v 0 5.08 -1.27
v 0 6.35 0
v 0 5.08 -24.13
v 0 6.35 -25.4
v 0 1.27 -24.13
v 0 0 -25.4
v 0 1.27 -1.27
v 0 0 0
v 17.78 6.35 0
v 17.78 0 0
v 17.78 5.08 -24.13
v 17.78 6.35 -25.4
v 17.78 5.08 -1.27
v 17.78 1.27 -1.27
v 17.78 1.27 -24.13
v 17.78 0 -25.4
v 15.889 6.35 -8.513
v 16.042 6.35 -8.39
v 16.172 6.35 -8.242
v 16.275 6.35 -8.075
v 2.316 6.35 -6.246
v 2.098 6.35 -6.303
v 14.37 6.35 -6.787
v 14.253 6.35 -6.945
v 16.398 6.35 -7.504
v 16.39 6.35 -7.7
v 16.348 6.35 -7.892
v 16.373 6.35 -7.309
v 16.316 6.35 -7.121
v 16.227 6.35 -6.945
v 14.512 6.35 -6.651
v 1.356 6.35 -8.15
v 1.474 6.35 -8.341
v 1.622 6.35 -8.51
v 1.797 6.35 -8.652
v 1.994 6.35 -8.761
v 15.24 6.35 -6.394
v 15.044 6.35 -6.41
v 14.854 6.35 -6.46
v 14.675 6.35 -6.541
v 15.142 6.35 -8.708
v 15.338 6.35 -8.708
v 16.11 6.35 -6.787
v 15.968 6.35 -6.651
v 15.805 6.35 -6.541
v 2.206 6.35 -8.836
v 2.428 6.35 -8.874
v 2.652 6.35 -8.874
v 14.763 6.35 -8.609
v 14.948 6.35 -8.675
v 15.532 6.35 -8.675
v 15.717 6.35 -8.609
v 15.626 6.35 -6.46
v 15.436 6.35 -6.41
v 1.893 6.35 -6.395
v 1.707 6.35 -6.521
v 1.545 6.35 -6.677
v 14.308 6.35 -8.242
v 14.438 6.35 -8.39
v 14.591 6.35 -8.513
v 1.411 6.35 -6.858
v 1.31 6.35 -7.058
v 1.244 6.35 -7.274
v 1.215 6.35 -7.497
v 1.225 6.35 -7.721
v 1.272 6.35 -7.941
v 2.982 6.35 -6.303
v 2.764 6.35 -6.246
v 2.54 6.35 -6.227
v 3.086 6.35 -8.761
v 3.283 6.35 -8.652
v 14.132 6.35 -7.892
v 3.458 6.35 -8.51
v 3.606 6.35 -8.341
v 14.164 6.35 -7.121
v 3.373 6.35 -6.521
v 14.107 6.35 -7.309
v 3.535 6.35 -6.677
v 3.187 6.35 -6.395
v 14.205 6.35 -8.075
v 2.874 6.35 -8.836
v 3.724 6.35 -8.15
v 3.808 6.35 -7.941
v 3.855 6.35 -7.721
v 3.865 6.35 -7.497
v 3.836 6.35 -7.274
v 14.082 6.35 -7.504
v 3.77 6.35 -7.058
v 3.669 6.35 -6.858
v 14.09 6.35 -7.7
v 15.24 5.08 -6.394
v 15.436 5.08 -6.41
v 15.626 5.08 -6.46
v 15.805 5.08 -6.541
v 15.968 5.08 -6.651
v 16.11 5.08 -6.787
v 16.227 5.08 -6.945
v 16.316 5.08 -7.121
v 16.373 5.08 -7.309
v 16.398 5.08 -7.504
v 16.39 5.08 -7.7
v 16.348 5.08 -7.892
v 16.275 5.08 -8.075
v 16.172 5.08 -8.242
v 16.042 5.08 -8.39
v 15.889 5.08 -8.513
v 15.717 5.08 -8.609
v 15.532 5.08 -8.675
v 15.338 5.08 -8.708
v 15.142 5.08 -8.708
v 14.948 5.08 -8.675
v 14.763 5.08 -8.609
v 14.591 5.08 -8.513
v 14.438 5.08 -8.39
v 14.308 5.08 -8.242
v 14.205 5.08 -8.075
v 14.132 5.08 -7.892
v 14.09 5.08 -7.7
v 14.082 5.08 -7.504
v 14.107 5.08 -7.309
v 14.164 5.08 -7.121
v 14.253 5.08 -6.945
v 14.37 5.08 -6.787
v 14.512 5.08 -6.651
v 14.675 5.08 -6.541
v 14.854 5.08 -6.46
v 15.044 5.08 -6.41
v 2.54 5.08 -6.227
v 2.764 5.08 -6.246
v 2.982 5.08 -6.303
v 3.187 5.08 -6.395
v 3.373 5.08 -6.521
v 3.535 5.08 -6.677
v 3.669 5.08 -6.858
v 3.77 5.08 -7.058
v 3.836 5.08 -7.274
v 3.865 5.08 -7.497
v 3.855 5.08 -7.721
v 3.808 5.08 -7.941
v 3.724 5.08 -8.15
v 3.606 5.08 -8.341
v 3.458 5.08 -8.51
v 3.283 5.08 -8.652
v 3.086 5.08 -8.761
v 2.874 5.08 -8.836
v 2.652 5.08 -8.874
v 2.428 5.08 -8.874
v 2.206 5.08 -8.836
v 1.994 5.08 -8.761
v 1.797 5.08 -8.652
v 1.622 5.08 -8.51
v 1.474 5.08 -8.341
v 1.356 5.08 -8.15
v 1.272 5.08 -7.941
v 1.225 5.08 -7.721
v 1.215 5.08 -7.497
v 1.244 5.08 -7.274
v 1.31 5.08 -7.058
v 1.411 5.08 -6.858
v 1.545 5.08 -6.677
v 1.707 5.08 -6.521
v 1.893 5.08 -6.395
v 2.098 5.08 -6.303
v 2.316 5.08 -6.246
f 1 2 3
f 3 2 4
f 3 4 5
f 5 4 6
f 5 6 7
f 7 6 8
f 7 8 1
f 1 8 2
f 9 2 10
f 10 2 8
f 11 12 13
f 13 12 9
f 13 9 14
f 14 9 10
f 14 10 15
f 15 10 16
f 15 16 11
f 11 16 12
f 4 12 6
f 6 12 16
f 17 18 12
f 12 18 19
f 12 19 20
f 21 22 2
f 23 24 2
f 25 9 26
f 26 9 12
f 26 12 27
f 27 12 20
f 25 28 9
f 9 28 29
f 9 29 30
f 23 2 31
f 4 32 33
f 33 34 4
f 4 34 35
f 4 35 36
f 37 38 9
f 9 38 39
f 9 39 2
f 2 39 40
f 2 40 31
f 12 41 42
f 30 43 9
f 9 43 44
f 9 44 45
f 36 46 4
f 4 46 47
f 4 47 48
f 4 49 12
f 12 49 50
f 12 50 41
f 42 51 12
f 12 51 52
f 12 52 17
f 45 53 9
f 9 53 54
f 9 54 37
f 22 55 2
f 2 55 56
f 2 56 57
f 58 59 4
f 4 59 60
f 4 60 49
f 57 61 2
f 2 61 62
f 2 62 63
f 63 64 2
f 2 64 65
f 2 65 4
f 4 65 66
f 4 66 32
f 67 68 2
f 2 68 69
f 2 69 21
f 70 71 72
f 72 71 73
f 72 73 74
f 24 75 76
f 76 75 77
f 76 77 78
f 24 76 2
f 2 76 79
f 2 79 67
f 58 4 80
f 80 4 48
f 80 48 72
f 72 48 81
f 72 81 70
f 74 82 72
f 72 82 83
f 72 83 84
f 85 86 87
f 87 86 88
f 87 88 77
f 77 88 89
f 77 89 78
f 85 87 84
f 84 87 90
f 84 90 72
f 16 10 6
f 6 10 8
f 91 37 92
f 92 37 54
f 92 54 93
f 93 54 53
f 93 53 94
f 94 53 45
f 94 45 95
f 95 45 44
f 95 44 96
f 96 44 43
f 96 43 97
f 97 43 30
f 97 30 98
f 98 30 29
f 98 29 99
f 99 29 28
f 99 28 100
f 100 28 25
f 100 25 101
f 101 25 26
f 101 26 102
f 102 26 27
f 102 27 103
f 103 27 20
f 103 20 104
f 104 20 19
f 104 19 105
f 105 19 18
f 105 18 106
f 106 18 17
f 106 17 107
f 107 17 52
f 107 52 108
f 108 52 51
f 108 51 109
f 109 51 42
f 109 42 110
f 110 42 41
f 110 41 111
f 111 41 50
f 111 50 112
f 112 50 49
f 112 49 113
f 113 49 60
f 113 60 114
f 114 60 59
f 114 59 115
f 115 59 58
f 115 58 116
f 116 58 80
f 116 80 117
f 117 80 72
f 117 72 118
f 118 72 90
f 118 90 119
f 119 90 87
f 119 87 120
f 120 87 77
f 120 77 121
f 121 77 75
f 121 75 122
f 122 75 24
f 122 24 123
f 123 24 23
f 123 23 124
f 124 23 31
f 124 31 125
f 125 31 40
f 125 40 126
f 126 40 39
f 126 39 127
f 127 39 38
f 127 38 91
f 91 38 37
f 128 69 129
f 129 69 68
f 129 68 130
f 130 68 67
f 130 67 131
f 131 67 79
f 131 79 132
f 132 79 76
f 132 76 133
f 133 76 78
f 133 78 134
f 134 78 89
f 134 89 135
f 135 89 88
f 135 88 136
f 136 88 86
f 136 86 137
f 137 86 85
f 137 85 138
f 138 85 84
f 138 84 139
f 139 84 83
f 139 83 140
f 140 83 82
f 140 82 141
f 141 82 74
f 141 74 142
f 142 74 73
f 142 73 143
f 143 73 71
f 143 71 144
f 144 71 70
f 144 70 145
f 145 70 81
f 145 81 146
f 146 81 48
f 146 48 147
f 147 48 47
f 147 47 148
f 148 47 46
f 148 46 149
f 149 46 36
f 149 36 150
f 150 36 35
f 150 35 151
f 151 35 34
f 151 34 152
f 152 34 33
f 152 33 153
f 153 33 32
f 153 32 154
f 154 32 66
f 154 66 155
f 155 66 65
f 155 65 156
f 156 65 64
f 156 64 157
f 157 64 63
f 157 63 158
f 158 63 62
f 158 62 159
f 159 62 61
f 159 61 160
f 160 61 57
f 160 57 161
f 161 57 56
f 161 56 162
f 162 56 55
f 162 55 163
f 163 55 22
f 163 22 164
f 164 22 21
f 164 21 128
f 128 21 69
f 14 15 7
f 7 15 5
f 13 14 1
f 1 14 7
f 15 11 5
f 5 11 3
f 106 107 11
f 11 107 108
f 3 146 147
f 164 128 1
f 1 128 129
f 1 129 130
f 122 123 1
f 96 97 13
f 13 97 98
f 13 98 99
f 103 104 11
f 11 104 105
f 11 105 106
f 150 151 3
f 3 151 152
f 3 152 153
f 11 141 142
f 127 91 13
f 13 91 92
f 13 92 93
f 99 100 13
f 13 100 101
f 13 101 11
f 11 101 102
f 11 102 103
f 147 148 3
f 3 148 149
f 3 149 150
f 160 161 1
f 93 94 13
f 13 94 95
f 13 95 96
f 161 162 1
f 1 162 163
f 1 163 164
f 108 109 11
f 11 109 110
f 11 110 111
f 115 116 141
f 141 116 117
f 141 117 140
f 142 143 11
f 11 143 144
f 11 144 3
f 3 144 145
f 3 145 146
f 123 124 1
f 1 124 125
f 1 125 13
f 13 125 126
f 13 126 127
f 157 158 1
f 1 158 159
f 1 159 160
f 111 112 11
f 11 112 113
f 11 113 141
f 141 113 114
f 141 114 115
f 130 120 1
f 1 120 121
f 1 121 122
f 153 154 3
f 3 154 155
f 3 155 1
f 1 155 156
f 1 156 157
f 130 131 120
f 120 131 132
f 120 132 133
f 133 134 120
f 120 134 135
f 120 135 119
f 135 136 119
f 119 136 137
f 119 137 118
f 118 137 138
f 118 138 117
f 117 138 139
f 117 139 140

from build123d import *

# Parameters (mm, degrees)
SKETCH2_W           = 17.78
SKETCH2_H           = 25.4
BOSS_EXTRUDE1_DEPTH = 6.35
SKETCH3_R           = 1.326085058
SKETCH3_R_2         = 1.159154329
CUT_EXTRUDE2_DEPTH  = 3.81
CUT_EXTRUDE3_REACH  = 19.78
SKETCH4_W           = 22.86
SKETCH4_H           = 3.81


with BuildPart() as part:
    # Sketch2 → Boss-Extrude1 (new body)
    with BuildSketch(Plane(origin=(0, 0, 0), x_dir=(1, 0, 0), z_dir=(0, 1, 0))):
        with Locations((8.89, 12.7)):
            Rectangle(SKETCH2_W, SKETCH2_H)
    extrude(amount=BOSS_EXTRUDE1_DEPTH)

    # Sketch3 → Cut-Extrude2 (cut)
    with BuildSketch(Plane(origin=(0, 6.35, 0), x_dir=(1, 0, 0), z_dir=(0, 1, 0))):
        with Locations((2.54, 7.552937487)):
            Circle(SKETCH3_R)
        with Locations((15.24, 7.552937487)):
            Circle(SKETCH3_R_2)
    extrude(amount=-CUT_EXTRUDE2_DEPTH, mode=Mode.SUBTRACT)

    # Sketch4 → Cut-Extrude3 (cut, up to next)
    with BuildSketch(Plane(origin=(17.78, 0, 0), x_dir=(0, 0, -1), z_dir=(1, 0, 0)), mode=Mode.PRIVATE) as cut_extrude3_sk1:
        with Locations((12.7, 3.175)):
            Rectangle(SKETCH4_W, SKETCH4_H)
    cut_extrude3_tool1 = extrude(cut_extrude3_sk1.sketch, amount=-CUT_EXTRUDE3_REACH, mode=Mode.PRIVATE) & part.part
    add(cut_extrude3_tool1.solids().sort_by_distance((17.78, 3.175, -12.7))[0], mode=Mode.SUBTRACT)


solid = part.part
